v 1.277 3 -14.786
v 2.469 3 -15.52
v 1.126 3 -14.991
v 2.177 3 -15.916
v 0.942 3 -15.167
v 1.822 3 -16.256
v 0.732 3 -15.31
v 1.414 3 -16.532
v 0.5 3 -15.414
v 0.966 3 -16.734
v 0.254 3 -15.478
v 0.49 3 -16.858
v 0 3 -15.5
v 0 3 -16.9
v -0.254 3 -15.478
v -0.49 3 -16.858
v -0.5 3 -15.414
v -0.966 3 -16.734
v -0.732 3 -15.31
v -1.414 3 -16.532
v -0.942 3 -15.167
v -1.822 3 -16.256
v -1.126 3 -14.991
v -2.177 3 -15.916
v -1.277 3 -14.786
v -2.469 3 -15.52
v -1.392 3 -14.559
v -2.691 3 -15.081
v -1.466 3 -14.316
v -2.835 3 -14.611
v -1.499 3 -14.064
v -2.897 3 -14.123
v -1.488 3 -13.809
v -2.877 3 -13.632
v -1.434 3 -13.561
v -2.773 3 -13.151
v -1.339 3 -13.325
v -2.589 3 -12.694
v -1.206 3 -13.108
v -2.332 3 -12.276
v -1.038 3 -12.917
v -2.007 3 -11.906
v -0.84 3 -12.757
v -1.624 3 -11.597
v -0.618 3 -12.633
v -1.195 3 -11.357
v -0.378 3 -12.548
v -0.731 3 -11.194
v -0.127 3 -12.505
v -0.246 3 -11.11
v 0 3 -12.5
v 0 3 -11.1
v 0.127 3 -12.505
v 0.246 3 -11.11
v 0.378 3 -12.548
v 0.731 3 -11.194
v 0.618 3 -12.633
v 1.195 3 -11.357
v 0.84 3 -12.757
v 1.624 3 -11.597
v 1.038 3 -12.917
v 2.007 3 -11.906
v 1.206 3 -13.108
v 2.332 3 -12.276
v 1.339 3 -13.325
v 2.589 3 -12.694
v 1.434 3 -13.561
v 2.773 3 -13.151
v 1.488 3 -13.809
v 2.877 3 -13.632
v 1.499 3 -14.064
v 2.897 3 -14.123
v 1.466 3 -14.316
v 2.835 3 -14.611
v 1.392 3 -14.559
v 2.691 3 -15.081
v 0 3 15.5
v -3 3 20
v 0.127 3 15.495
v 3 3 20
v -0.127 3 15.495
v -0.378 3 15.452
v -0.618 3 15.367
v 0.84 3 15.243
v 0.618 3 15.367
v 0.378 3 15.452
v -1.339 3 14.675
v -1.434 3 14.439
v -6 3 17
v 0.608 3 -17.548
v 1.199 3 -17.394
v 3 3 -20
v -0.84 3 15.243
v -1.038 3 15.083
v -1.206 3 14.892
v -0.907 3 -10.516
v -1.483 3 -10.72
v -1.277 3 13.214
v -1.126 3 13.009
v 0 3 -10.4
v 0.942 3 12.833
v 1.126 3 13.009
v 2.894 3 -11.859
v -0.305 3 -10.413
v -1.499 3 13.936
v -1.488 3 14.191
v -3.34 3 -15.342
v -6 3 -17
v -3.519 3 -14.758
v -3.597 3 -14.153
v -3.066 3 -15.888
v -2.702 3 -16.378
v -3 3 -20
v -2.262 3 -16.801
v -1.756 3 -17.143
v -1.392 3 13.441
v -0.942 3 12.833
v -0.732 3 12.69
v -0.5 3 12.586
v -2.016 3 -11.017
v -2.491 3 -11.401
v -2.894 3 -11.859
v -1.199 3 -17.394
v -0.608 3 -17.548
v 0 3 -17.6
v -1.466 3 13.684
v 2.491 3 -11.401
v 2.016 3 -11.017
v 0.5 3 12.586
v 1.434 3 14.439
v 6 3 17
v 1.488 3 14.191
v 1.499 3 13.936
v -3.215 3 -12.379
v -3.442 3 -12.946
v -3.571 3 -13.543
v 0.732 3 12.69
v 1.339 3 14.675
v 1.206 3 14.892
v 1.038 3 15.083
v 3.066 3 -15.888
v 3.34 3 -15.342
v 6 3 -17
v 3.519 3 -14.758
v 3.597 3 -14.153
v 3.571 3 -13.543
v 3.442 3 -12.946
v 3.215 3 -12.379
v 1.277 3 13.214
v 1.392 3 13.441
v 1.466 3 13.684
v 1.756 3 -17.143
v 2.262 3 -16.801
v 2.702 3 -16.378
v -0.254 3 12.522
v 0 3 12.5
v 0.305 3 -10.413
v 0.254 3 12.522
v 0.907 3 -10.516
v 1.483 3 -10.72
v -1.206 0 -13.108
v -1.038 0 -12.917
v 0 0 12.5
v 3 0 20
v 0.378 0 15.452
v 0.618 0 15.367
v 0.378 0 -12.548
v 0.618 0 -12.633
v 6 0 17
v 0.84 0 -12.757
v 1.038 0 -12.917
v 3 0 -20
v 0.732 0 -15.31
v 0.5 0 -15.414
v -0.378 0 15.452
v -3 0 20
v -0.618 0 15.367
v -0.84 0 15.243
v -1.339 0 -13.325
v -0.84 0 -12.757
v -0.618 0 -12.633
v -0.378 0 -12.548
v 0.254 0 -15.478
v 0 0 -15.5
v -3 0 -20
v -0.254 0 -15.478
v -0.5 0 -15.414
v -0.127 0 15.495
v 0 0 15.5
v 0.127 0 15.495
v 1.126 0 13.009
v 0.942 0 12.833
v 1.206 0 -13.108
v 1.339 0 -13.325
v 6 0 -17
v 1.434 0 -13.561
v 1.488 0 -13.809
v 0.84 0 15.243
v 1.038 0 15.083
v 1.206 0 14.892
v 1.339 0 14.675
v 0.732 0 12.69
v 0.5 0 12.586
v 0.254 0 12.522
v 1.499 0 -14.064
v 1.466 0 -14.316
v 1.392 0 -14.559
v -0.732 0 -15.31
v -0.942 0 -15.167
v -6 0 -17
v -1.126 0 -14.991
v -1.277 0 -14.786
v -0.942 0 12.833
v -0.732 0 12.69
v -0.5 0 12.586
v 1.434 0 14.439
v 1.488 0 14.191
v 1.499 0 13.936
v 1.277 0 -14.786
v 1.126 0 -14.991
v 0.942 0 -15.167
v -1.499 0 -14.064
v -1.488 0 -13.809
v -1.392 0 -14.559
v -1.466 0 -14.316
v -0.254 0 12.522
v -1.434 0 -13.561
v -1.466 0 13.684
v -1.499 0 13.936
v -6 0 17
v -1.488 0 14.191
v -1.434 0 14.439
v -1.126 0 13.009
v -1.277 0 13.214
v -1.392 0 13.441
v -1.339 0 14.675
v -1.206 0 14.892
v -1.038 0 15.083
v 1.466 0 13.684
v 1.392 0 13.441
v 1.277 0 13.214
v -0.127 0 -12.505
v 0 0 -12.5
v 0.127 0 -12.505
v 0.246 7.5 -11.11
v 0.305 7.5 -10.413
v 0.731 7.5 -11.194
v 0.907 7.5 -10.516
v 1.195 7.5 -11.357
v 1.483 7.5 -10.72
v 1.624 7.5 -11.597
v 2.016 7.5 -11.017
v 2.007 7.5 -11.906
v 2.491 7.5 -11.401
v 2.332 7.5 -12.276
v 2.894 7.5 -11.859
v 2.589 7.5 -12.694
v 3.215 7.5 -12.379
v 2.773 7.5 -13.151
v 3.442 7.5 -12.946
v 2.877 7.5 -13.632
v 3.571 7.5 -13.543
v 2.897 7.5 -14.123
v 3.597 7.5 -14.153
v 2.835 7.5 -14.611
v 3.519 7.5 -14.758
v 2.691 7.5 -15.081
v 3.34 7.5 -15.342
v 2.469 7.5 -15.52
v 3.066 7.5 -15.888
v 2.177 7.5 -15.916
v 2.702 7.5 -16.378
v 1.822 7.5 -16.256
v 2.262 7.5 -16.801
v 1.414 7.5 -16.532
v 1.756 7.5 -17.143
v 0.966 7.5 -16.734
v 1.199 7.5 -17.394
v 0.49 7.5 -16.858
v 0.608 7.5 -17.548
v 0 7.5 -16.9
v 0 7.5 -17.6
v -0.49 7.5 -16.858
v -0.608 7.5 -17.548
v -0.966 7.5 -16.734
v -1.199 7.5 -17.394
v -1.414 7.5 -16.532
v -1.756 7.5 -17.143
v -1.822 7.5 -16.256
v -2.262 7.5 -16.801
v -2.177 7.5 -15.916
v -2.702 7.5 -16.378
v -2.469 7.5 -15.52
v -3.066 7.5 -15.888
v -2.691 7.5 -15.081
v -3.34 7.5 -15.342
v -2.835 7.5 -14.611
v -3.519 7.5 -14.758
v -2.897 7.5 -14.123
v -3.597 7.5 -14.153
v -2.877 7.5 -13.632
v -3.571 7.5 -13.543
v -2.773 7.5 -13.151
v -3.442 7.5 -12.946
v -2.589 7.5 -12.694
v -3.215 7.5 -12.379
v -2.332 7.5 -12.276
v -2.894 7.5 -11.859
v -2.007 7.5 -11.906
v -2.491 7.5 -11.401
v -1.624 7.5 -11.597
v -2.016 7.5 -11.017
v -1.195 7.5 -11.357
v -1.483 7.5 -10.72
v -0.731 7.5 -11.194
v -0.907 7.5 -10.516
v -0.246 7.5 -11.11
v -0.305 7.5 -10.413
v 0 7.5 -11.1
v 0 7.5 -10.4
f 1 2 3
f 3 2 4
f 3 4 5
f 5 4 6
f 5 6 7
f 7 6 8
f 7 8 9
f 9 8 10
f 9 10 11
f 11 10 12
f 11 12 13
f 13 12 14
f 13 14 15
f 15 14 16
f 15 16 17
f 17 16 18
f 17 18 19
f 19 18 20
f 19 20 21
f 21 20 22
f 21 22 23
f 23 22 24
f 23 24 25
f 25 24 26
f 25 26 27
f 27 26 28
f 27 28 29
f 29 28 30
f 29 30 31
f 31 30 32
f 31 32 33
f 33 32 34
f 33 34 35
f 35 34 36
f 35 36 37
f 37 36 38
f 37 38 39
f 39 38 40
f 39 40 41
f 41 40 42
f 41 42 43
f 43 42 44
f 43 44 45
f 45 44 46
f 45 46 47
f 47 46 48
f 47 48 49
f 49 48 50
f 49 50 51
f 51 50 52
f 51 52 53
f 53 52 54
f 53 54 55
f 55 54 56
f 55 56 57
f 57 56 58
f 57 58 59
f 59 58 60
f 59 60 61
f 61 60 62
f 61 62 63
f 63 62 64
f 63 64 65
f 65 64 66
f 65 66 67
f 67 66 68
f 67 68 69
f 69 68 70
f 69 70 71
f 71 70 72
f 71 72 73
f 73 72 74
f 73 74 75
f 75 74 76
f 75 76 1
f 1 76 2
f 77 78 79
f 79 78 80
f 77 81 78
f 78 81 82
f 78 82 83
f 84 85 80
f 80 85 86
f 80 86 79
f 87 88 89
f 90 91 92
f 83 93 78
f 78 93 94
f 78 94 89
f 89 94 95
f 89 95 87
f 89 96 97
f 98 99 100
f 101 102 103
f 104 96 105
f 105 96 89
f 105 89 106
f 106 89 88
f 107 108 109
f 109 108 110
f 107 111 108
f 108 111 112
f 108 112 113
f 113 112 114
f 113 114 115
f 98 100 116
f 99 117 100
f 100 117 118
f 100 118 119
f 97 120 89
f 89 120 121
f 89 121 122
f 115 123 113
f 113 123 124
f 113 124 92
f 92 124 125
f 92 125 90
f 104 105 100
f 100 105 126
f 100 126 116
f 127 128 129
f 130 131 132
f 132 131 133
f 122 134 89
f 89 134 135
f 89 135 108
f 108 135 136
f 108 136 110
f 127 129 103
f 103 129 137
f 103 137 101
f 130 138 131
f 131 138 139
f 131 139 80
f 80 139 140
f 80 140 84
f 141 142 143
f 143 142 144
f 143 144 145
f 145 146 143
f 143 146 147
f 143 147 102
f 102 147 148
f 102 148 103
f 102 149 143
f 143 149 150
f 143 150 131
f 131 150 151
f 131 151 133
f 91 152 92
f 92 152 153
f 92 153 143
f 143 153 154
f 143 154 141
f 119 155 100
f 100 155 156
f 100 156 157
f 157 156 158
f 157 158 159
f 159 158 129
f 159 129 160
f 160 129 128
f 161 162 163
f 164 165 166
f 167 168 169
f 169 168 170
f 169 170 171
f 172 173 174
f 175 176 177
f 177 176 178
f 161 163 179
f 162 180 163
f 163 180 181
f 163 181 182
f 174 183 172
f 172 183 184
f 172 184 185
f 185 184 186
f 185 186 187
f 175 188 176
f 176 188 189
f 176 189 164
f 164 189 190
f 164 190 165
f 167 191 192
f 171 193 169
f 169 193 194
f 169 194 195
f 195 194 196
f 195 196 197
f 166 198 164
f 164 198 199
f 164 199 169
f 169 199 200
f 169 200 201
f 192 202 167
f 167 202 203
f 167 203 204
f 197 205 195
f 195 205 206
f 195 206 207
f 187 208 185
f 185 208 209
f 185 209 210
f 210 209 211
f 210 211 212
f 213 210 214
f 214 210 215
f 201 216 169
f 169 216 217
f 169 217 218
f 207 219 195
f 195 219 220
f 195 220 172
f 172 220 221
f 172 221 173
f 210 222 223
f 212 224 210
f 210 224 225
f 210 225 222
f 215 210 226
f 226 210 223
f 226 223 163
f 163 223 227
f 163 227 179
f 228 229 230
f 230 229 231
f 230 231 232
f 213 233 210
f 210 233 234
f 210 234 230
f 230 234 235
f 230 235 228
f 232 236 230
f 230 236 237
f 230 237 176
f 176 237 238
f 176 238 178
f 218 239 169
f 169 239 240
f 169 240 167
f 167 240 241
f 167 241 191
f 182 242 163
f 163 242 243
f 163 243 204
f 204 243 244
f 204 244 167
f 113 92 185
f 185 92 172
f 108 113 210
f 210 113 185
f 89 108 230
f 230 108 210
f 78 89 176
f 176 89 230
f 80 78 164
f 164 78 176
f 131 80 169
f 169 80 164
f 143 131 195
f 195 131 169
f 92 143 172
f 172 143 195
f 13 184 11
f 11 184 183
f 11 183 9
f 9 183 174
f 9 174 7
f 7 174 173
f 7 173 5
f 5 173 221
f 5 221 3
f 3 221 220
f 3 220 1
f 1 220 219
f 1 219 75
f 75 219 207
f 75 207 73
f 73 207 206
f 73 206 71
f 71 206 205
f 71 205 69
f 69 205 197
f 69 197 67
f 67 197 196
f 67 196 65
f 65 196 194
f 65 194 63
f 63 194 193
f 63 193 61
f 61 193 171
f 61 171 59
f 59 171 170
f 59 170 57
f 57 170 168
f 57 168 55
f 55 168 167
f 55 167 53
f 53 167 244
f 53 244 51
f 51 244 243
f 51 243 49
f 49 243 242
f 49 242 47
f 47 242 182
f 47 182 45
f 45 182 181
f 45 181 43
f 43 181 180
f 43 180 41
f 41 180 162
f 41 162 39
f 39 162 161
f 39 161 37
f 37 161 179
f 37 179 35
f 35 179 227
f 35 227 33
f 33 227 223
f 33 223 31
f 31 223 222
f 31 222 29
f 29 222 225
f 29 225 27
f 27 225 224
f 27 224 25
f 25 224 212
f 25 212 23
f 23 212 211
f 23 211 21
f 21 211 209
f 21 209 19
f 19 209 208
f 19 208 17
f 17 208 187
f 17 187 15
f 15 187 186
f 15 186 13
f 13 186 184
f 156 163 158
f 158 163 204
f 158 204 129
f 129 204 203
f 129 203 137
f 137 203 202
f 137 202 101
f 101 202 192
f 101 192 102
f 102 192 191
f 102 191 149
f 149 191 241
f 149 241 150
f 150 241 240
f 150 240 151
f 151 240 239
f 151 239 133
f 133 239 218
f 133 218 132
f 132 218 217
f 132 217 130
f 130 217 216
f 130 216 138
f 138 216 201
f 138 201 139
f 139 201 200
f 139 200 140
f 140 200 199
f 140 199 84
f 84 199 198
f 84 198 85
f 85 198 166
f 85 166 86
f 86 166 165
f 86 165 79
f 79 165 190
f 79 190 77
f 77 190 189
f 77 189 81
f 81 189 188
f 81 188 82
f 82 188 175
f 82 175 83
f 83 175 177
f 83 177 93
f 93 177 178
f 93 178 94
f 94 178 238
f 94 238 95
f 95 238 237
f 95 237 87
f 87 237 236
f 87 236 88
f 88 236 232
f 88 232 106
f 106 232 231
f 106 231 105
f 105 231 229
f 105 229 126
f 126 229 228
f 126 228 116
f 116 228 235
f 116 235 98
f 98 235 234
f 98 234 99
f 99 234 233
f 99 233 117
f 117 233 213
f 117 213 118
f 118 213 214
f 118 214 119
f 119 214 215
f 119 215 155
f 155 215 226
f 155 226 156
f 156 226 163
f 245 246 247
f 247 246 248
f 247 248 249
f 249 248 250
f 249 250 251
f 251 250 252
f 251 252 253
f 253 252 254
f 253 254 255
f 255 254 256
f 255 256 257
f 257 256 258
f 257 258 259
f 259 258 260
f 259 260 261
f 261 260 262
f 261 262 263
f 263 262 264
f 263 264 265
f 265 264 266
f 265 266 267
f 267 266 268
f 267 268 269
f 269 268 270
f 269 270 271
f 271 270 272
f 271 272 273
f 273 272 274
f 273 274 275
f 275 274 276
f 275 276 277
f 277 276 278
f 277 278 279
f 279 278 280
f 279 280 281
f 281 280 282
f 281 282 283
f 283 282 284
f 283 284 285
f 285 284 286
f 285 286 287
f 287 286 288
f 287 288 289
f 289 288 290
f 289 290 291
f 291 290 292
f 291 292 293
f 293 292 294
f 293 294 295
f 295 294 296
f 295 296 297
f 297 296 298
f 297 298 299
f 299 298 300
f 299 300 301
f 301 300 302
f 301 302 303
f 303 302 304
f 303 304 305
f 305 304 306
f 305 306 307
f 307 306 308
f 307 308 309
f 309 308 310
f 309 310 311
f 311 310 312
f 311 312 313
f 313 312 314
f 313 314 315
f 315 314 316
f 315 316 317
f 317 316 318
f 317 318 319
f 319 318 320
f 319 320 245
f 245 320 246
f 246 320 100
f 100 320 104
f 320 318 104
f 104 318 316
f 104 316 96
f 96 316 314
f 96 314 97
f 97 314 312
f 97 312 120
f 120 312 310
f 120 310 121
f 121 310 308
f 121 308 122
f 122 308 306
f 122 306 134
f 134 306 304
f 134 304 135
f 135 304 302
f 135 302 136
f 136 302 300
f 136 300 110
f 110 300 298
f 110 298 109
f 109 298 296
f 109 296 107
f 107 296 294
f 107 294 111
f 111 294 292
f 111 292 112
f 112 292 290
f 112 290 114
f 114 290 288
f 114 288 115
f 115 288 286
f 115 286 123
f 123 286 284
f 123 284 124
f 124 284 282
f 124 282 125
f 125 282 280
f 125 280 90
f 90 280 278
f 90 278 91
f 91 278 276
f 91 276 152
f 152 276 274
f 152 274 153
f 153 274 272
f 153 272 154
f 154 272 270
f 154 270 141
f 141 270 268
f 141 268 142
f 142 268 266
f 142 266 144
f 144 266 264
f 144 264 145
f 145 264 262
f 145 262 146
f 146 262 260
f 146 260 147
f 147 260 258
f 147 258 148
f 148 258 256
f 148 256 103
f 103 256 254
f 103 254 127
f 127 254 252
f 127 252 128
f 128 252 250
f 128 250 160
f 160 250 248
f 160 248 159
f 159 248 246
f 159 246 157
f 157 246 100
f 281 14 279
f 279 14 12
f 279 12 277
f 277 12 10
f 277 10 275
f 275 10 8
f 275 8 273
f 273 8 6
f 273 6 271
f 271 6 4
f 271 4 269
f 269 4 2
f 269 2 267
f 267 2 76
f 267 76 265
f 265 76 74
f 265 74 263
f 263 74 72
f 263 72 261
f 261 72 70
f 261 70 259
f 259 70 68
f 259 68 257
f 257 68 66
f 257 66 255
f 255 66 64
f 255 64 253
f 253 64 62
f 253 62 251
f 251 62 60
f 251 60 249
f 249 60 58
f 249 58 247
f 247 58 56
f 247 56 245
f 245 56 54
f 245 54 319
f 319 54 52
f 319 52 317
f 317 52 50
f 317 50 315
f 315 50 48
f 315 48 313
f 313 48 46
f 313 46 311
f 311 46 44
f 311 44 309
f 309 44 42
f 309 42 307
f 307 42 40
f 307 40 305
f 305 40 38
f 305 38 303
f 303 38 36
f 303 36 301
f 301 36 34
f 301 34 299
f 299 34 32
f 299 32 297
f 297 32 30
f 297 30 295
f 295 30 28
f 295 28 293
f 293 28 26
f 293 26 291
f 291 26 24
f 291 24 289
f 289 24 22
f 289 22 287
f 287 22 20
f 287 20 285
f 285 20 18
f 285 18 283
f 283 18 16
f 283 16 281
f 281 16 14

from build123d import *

# Parameters (mm, degrees)
SKETCH1_R           = 1.5
BOSS_EXTRUDE1_DEPTH = 3
SKETCH2_R           = 3.6
SKETCH2_R_2         = 2.9
BOSS_EXTRUDE2_DEPTH = 4.5


with BuildPart() as part:
    # Sketch1 → Boss-Extrude1 (new body)
    with BuildSketch(Plane(origin=(0, 0, 0), x_dir=(1, 0, 0), z_dir=(0, 1, 0))):
        Polygon((-6, 17), (-3, 20), (3, 20), (6, 17), (6, -17), (3, -20), (-3, -20), (-6, -17), align=None)
        with Locations(Location((0, 14, 0), (0, 0, 270))):
            Circle(SKETCH1_R, mode=Mode.SUBTRACT)
        with Locations(Location((0, -14, 0), (0, 0, 270))):
            Circle(SKETCH1_R, mode=Mode.SUBTRACT)
    extrude(amount=BOSS_EXTRUDE1_DEPTH)

    # Sketch2 → Boss-Extrude2 (add)
    with BuildSketch(Plane(origin=(0, 3, 0), x_dir=(1, 0, 0), z_dir=(0, 1, 0))):
        with Locations(Location((0, 14, 0), (0, 0, 270))):
            Circle(SKETCH2_R)
        with Locations(Location((0, 14, 0), (0, 0, 270))):
            Circle(SKETCH2_R_2, mode=Mode.SUBTRACT)
    extrude(amount=BOSS_EXTRUDE2_DEPTH)


solid = part.part
